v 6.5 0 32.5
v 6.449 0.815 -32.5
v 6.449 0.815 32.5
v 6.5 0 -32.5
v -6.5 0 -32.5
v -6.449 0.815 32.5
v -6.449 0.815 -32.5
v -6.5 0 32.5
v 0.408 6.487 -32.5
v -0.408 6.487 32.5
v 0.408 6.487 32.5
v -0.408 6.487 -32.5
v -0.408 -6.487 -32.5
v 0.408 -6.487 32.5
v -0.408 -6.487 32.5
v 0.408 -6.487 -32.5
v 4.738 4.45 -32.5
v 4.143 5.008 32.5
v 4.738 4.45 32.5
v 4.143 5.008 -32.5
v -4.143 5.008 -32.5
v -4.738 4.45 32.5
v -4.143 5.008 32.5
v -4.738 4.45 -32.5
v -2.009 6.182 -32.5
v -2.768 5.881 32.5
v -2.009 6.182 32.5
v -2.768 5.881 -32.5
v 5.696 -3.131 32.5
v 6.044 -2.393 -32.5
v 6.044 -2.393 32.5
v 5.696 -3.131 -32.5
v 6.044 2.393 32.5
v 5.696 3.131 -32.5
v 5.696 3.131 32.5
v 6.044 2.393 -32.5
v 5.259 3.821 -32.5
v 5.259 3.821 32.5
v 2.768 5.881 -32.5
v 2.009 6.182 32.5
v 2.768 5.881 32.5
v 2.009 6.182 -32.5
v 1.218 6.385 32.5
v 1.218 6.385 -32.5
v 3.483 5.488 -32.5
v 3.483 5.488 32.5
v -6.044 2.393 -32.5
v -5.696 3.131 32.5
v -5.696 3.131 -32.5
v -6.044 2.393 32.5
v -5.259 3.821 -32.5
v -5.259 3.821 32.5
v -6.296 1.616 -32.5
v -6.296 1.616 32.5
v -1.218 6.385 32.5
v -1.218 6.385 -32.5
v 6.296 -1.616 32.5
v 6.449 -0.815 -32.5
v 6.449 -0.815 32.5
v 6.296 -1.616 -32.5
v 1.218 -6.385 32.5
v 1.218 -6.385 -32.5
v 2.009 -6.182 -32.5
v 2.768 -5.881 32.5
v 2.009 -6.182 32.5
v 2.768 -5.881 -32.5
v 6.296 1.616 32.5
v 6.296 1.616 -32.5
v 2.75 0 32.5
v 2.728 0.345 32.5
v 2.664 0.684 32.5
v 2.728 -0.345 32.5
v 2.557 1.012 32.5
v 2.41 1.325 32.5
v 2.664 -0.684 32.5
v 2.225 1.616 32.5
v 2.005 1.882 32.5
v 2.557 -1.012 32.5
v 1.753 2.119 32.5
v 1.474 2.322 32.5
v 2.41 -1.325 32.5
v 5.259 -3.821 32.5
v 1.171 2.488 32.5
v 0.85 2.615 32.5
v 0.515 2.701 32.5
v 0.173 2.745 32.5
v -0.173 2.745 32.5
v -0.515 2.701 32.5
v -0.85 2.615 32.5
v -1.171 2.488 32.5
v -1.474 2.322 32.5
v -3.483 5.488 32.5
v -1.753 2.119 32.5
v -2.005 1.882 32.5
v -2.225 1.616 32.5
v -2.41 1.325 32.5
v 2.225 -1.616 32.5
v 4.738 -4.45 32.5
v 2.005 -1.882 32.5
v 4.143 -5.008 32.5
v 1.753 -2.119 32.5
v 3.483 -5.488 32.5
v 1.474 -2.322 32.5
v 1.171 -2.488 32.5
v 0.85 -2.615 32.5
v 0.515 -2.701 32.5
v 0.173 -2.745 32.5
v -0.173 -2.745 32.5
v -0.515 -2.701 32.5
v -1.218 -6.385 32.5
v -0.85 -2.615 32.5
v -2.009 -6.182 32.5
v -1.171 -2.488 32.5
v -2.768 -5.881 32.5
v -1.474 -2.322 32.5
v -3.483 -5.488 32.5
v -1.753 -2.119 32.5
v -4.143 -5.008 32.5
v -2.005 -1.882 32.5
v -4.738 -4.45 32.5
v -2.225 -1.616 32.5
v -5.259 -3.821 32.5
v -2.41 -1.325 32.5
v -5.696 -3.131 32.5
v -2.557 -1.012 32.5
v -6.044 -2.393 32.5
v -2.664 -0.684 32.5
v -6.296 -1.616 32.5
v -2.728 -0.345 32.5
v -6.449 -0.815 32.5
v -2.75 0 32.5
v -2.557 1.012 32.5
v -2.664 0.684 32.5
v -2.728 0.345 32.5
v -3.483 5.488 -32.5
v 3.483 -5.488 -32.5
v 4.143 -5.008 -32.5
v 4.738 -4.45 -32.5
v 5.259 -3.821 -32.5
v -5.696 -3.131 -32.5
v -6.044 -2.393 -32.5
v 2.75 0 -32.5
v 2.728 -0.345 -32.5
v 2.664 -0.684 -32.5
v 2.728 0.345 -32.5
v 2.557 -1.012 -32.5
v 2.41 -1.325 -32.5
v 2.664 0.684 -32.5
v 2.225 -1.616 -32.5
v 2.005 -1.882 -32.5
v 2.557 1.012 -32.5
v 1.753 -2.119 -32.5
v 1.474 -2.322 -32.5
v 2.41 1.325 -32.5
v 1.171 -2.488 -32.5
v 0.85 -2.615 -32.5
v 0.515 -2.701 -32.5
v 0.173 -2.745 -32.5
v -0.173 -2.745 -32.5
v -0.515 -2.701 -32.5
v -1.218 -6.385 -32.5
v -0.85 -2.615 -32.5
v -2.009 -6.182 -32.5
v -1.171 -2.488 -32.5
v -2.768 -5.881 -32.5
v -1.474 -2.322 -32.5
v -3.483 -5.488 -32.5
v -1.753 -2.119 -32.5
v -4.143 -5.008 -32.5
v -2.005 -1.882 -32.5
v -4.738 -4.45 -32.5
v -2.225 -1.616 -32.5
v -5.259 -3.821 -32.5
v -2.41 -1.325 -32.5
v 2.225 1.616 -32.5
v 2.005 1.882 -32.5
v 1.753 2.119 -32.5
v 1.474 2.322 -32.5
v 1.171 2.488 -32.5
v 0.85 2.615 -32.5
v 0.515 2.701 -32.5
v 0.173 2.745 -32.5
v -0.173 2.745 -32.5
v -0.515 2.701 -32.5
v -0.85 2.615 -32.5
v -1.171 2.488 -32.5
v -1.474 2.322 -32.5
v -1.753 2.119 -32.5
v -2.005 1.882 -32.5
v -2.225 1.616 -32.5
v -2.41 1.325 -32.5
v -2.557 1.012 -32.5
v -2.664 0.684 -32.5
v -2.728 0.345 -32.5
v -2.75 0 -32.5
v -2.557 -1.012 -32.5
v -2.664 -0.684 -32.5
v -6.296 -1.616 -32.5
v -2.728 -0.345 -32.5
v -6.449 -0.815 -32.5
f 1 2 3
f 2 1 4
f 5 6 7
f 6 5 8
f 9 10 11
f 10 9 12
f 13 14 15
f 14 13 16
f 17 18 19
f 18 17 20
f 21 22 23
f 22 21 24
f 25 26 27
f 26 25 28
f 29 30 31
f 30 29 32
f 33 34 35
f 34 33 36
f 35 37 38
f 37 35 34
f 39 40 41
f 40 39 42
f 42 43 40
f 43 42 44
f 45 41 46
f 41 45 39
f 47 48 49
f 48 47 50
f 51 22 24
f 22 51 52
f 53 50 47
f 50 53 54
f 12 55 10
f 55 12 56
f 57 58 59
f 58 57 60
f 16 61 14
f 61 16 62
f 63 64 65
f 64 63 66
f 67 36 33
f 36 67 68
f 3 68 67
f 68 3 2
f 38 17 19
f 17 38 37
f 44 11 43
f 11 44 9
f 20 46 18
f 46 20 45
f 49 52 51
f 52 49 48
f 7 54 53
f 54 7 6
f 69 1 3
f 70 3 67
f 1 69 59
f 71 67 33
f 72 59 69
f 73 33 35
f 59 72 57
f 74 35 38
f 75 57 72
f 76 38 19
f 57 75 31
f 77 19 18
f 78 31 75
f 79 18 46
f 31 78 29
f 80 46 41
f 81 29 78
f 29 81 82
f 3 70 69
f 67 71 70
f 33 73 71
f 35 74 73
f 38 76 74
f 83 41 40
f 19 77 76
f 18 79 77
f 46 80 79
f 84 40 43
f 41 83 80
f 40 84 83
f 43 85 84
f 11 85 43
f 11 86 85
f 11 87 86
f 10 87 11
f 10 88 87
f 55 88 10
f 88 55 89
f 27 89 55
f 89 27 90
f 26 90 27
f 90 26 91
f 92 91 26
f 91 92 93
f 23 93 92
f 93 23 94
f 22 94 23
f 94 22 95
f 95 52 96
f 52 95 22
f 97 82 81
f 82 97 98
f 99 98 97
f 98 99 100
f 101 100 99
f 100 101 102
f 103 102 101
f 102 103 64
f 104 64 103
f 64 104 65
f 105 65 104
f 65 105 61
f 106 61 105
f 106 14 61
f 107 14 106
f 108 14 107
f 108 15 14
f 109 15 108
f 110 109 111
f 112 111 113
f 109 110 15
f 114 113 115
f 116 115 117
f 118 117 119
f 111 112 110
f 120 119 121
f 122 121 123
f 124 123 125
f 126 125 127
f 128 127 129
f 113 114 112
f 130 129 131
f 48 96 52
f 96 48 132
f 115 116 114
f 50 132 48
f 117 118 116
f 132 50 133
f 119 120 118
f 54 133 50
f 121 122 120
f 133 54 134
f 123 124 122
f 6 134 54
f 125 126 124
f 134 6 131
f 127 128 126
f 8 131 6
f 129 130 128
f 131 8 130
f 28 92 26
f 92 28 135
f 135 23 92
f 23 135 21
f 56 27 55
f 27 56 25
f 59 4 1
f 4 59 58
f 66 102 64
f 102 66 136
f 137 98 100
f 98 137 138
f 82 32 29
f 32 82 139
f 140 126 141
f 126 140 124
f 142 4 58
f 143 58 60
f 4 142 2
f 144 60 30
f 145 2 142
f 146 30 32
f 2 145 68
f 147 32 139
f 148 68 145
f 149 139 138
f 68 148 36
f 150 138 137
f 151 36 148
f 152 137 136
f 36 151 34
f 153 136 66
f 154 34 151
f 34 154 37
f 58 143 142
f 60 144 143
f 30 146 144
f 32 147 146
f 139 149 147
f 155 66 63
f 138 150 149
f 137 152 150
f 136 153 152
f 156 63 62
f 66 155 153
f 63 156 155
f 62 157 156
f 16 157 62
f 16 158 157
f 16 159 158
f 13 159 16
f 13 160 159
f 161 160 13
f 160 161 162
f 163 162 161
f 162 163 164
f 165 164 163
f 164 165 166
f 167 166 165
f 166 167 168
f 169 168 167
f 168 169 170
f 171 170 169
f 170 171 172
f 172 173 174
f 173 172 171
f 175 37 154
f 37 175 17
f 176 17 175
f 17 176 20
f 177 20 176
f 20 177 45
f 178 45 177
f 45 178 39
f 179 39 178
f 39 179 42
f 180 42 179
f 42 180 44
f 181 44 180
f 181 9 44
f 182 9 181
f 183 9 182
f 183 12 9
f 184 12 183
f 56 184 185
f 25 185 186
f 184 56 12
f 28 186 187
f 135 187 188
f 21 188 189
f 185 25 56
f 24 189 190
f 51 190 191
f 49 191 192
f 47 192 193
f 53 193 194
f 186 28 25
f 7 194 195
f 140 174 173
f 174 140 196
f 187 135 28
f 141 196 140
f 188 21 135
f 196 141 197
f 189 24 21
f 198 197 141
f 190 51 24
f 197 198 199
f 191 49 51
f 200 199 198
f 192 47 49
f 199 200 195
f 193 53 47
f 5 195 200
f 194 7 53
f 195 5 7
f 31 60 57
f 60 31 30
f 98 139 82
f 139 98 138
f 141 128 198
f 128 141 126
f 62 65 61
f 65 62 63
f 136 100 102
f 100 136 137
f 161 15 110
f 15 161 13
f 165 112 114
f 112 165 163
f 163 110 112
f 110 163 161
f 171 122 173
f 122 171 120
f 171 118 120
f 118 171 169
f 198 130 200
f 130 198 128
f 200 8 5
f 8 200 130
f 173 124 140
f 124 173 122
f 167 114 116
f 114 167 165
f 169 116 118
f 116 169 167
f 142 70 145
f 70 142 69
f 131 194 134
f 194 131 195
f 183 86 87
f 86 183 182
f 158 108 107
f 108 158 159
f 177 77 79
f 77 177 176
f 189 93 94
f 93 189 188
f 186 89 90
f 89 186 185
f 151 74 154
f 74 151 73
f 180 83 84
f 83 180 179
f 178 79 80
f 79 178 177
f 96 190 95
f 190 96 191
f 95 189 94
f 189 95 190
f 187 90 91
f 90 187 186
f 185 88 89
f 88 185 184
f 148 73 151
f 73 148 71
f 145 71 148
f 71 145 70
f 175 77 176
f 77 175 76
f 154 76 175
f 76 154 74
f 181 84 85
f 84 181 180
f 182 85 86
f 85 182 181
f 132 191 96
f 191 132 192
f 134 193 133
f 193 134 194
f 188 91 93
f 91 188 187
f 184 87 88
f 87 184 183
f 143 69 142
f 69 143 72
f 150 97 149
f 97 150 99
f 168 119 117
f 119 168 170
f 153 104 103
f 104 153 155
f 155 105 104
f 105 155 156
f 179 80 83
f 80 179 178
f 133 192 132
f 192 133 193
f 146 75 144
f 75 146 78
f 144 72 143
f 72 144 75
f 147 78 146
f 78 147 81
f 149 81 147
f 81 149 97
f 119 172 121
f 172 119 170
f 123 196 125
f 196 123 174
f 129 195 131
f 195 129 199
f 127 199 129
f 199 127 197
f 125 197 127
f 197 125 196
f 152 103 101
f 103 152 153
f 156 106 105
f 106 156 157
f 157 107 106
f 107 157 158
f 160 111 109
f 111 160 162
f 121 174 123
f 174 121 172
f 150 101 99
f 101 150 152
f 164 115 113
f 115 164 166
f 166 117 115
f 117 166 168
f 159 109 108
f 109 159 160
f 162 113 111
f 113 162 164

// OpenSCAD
$fn = 50;


difference() {
	union() {
		translate(v = [0, 0, -32.5000000000]) {
			cylinder(h = 65, r = 6.5000000000);
		}
	}
	union() {
		translate(v = [0, 0, -100.0000000000]) {
			cylinder(h = 200, r = 2.7500000000);
		}
	}
}
